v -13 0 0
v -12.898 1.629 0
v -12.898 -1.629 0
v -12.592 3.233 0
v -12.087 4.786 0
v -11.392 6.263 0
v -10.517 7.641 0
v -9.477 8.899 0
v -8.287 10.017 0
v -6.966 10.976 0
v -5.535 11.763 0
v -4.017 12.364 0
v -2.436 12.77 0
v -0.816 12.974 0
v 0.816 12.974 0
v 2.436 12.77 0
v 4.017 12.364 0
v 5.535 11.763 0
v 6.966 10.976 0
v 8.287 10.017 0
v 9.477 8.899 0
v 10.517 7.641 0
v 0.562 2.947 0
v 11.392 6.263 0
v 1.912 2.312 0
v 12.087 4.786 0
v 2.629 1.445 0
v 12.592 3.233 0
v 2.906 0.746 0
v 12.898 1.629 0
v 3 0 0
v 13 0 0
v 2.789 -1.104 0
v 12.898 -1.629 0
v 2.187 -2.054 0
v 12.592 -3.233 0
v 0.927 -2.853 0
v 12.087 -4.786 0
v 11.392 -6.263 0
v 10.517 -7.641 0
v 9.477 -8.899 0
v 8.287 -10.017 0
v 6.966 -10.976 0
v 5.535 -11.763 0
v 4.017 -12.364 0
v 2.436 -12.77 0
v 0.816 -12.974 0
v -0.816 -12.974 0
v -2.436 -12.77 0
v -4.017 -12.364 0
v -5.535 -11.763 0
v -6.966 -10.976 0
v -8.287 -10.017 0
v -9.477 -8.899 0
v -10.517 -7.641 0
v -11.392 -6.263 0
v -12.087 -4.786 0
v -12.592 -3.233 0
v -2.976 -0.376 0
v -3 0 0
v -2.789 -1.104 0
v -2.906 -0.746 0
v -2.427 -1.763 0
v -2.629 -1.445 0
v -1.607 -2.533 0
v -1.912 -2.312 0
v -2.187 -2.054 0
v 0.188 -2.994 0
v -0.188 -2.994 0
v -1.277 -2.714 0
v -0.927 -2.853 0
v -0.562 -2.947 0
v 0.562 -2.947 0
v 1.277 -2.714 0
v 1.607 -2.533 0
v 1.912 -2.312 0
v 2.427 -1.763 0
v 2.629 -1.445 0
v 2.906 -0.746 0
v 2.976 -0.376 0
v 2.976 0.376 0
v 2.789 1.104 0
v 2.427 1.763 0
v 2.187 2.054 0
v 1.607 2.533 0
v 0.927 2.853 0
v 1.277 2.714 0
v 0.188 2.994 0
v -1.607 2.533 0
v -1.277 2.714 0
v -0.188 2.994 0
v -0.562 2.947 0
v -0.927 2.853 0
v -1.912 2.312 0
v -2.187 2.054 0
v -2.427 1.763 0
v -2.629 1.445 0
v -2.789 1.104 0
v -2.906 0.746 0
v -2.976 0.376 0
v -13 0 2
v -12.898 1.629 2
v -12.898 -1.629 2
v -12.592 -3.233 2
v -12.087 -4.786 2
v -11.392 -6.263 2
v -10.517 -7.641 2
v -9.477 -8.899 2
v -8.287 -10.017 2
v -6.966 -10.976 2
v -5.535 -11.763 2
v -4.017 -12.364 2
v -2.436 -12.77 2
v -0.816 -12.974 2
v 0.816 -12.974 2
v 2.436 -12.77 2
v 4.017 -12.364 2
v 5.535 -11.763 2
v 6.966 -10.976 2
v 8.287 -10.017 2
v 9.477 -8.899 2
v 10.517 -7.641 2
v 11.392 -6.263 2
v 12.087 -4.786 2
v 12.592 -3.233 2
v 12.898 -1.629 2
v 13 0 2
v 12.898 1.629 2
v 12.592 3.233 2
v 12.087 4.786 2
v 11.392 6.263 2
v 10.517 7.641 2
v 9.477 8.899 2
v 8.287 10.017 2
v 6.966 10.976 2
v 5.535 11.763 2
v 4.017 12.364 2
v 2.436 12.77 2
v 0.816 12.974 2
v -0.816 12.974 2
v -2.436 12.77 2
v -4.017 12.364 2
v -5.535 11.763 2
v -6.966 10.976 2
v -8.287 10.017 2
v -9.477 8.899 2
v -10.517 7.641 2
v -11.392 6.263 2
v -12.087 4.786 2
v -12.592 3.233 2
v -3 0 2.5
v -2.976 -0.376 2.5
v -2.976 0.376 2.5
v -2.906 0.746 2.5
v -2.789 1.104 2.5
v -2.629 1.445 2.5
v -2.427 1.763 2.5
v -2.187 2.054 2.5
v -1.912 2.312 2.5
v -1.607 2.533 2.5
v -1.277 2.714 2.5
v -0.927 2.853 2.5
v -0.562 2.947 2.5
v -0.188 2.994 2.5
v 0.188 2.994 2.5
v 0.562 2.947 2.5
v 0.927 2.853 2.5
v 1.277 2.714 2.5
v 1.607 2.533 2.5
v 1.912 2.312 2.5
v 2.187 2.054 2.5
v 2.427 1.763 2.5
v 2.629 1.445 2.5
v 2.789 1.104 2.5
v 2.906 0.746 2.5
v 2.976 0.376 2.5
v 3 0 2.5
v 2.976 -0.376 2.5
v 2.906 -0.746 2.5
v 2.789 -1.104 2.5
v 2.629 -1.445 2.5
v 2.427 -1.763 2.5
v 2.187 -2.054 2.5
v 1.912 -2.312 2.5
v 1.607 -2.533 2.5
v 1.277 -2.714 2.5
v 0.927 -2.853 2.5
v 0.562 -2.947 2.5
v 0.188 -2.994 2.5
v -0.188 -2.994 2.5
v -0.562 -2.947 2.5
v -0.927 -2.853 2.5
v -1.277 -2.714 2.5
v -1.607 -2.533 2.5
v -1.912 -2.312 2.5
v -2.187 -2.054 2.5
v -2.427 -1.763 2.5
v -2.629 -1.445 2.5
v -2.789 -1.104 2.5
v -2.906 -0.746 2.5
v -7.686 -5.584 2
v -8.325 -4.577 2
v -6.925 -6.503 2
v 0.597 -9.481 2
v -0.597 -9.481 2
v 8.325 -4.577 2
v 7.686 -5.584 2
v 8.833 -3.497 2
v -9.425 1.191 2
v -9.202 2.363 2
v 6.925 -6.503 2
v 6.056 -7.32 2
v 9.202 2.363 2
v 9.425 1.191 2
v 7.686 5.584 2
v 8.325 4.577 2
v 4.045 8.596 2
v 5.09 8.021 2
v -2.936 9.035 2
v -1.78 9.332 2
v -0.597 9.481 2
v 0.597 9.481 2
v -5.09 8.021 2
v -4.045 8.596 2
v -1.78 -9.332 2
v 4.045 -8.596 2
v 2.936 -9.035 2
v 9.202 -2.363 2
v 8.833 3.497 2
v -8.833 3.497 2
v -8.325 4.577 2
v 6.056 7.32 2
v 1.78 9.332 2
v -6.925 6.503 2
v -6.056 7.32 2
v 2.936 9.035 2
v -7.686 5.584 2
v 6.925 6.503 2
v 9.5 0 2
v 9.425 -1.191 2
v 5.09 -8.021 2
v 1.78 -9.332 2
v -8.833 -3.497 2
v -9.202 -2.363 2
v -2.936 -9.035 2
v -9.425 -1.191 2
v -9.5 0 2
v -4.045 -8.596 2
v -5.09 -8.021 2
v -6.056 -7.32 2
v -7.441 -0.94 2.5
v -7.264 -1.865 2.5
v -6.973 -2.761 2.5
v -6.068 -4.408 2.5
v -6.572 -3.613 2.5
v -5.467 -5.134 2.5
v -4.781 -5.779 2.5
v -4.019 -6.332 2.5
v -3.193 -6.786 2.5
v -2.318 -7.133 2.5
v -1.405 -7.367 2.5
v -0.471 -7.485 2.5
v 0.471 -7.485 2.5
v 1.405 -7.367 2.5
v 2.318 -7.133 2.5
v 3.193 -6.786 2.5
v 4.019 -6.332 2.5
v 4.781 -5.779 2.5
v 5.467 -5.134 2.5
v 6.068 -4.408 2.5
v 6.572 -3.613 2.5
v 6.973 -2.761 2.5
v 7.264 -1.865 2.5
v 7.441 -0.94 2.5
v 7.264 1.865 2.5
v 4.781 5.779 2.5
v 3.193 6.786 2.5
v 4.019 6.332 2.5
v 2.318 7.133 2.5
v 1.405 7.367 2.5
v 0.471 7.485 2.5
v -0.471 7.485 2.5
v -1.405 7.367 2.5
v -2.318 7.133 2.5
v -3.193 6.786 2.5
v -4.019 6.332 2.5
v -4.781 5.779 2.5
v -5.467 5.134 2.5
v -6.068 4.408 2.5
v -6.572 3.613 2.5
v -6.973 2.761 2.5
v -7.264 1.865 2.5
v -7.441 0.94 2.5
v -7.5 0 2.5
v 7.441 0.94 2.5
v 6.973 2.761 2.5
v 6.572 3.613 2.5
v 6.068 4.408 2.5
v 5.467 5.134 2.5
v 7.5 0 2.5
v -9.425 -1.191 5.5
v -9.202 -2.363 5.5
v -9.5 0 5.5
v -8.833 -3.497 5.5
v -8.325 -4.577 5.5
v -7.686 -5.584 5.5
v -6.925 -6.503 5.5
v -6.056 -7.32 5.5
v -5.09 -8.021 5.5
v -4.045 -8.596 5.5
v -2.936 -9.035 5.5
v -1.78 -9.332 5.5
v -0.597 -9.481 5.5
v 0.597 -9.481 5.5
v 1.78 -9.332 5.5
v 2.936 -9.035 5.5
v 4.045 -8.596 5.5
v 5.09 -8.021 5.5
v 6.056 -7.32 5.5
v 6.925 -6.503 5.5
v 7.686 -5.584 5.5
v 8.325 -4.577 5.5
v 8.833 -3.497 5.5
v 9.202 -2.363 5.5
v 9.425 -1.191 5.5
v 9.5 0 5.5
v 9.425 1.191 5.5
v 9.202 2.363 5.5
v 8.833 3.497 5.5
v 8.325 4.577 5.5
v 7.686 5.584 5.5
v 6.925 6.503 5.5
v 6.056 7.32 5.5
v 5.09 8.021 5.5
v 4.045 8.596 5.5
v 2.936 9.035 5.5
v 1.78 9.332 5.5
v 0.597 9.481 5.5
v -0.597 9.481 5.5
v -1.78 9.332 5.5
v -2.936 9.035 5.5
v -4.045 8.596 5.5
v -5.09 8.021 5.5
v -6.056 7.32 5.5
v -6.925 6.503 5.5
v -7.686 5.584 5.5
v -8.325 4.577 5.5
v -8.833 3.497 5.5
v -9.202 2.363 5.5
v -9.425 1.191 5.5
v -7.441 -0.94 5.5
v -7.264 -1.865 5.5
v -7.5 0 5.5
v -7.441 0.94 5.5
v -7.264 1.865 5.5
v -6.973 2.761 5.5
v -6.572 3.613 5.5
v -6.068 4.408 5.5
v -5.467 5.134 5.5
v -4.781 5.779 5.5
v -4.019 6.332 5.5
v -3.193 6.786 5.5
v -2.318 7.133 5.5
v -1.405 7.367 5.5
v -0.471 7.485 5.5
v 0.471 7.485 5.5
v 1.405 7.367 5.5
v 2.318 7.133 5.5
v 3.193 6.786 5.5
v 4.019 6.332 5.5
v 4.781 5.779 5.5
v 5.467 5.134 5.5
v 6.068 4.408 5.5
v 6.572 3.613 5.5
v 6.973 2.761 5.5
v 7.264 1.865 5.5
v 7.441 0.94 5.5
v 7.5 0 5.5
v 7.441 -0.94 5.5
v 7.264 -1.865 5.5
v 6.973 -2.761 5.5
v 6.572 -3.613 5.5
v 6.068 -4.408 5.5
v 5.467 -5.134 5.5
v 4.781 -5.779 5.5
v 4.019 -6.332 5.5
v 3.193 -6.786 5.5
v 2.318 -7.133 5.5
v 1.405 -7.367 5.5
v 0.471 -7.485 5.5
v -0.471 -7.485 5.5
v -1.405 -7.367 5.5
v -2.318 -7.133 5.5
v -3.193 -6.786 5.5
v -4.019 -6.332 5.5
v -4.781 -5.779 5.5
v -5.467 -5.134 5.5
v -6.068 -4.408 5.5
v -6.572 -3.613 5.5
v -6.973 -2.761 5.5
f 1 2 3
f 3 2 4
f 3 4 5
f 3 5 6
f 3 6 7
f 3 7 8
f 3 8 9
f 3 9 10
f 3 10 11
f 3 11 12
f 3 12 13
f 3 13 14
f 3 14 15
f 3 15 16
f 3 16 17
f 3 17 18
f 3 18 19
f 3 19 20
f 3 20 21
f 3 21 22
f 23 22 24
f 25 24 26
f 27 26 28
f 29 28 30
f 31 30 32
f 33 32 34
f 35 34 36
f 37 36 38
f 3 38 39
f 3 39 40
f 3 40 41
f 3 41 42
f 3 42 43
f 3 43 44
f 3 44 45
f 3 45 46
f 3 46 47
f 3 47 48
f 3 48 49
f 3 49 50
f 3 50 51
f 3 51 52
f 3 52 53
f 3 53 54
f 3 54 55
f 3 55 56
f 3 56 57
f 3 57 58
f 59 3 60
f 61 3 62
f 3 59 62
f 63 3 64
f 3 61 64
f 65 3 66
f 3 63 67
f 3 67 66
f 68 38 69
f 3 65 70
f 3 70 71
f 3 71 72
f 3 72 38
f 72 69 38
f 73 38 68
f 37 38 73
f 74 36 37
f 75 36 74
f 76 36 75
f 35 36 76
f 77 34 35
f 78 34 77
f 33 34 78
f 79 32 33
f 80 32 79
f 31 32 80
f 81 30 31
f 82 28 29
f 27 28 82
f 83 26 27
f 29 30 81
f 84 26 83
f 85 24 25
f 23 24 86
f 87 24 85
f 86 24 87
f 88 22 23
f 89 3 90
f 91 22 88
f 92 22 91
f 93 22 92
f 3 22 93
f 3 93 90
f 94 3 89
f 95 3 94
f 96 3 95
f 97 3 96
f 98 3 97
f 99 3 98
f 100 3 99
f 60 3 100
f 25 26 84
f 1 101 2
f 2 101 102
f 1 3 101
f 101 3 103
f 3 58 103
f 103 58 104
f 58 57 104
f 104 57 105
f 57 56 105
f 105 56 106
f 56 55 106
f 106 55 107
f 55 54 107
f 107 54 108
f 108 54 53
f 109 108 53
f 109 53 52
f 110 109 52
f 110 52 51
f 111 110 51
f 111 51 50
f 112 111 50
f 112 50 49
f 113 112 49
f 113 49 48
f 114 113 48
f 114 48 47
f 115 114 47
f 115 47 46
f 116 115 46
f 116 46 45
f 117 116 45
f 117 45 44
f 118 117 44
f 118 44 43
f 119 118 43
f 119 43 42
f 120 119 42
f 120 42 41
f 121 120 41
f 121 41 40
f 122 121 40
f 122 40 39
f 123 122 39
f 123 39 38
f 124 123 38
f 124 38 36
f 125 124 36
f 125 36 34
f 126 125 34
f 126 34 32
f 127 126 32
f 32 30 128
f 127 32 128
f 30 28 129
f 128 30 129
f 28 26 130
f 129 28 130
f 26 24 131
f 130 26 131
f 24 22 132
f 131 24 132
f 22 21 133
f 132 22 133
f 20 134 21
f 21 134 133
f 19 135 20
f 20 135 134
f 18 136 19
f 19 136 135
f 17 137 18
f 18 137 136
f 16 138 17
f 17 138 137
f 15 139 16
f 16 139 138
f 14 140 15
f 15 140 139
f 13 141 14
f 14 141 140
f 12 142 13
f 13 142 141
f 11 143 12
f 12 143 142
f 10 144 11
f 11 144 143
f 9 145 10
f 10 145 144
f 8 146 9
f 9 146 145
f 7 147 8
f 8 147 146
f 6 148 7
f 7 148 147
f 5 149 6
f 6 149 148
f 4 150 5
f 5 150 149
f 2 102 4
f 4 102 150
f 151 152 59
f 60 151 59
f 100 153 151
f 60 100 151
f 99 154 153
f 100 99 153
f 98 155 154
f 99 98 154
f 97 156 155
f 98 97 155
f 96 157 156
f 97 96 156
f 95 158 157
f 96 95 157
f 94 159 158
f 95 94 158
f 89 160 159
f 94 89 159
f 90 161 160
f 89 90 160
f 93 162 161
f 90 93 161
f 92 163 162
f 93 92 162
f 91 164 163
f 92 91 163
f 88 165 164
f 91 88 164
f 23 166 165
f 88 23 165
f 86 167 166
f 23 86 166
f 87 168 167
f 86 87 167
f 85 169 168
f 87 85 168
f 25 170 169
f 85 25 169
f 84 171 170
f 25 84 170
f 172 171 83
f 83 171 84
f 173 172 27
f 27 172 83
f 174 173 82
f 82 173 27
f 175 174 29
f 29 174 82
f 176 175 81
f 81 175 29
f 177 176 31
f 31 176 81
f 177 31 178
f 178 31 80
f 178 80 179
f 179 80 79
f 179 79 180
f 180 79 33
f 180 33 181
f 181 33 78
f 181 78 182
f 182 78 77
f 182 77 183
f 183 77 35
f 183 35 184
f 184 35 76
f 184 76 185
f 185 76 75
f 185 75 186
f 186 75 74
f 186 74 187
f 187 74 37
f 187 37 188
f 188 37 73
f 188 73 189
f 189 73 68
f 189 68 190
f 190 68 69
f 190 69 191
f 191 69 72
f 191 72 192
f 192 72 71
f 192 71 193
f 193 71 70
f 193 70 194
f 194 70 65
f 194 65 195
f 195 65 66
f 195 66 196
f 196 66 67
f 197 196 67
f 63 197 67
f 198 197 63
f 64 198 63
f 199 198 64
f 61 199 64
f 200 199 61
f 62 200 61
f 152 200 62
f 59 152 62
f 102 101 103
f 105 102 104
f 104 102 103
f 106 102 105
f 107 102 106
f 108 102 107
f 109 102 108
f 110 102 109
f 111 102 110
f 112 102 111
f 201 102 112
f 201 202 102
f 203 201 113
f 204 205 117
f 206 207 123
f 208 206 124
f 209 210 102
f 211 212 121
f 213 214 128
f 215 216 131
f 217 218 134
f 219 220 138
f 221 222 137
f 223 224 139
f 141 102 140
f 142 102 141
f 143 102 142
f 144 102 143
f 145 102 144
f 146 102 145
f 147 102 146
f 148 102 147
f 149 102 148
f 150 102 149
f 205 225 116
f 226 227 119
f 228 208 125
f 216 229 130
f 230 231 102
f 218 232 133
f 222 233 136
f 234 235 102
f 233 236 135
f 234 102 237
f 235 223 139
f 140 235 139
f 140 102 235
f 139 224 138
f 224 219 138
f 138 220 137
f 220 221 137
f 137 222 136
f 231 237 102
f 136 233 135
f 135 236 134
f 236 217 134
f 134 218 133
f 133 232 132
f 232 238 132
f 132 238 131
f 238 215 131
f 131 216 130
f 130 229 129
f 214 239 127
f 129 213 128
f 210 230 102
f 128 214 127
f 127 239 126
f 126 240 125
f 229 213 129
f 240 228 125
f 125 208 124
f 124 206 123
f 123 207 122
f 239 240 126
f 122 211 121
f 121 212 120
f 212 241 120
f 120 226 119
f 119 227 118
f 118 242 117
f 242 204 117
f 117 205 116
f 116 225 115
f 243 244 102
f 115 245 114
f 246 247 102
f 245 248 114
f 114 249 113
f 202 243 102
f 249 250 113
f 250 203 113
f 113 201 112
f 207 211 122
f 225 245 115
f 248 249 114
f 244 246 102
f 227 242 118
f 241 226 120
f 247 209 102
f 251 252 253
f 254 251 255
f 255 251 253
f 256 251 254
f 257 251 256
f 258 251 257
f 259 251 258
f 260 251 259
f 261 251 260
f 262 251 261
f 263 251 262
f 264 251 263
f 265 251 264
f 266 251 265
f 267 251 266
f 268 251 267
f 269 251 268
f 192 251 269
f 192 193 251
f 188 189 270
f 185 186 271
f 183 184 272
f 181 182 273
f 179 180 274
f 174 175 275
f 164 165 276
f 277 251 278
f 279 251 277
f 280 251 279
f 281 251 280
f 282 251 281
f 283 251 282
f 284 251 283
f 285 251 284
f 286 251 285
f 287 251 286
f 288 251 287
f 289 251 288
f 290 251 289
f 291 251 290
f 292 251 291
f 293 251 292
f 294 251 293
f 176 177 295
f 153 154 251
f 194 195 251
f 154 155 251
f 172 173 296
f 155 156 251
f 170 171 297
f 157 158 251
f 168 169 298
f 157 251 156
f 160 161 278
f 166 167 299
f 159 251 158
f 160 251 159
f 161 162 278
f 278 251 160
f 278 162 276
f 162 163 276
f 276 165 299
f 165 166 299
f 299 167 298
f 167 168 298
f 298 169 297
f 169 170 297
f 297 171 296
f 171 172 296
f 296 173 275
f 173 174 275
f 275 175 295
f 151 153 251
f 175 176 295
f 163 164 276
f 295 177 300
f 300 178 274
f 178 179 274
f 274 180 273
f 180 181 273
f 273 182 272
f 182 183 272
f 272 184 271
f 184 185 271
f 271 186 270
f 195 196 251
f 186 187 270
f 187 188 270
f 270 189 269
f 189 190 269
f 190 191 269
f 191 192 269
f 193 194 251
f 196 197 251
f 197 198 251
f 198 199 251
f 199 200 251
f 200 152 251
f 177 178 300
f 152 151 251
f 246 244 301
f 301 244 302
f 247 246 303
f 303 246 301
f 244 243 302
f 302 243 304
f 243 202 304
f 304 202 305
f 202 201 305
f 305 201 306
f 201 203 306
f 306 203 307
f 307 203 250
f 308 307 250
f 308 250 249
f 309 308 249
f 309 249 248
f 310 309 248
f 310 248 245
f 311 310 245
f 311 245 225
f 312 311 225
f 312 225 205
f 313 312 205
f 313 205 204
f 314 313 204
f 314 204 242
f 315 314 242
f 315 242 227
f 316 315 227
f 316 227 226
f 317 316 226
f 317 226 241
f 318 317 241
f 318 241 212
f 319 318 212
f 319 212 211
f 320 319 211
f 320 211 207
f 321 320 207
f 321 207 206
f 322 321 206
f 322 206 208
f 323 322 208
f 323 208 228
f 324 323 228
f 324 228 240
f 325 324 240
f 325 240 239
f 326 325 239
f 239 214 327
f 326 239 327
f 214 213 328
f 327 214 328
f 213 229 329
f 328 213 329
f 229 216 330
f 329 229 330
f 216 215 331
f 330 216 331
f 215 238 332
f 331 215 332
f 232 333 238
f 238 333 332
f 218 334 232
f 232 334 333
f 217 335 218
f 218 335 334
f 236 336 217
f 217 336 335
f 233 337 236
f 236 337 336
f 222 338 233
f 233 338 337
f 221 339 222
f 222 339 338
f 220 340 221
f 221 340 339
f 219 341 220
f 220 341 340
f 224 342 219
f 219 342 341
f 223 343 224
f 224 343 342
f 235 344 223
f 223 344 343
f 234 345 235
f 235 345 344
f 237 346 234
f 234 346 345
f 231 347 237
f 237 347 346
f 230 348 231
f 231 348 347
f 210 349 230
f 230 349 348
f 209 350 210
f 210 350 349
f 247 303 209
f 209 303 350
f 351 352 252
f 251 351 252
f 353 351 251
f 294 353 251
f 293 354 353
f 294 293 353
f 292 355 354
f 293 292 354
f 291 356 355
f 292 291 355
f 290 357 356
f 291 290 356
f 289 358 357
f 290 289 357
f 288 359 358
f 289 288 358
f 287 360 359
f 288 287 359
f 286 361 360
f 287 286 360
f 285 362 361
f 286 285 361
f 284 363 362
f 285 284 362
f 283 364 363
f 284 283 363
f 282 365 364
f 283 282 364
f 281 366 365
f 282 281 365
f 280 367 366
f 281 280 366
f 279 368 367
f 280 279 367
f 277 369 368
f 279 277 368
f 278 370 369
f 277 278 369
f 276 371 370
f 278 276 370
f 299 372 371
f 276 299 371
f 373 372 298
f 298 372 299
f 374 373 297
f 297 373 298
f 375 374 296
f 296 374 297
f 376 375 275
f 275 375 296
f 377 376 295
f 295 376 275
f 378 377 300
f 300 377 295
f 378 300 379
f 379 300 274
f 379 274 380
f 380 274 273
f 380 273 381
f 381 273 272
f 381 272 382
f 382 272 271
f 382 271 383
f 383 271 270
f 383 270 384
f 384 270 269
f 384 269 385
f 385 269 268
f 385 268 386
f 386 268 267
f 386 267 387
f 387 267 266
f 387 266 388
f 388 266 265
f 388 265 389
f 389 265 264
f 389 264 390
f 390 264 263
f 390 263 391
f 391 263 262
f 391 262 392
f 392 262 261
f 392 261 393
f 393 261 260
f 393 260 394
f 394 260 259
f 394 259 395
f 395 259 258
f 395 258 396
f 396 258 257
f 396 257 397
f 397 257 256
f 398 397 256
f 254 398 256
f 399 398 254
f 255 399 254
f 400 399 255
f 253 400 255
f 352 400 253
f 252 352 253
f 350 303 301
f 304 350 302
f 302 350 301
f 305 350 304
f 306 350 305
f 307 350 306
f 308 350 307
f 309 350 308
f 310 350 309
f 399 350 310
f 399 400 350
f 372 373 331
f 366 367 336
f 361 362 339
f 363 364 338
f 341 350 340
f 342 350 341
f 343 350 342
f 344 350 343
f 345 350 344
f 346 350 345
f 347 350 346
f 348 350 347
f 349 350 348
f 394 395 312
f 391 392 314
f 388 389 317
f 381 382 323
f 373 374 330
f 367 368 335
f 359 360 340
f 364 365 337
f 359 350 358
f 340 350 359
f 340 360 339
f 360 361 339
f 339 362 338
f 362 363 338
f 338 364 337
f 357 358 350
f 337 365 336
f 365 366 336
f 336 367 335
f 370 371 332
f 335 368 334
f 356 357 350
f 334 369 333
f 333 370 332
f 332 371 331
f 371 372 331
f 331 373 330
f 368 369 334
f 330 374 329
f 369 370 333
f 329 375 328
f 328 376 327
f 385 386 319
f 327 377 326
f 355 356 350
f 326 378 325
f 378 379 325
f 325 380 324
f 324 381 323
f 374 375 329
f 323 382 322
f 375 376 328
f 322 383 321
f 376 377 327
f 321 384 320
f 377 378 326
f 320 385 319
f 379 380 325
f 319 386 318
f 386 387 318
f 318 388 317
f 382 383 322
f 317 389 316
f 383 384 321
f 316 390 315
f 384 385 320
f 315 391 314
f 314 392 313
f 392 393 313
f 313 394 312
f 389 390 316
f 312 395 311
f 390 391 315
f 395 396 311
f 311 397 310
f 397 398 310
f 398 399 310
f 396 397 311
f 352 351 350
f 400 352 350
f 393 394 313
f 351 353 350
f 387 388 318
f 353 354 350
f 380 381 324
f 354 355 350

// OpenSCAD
// file: stack_params.scad
stackInnerR = 26/2;
stackWallT = 3;

assemblyScrewR = 4/2;
assemblyScrewCenterR = stackInnerR+assemblyScrewR+0.5; // give ourselves clearance

stackOuterR = assemblyScrewCenterR+assemblyScrewR+stackWallT;



nutHeadWidth = 7;
nutHeadHeight = 3;

boltL = 20; // 20mm M4 bolts


flangeW = 10;
flangeH = 10;
flangeHoleR = 4.5/2;
flangeHoleHead = 7.6/2;
flangeHoleD = 3;

baseT = nutHeadHeight+2;

bodyH = boltL-baseT;

usbCableR = 3.75/2;



lensEndD = 15;
lensEndH = 3;
cameraEndD = 6;
cameraEndH = 2.5;

wallT = 2;

lensStackH = lensEndH+cameraEndH;
lensStackD = max(lensEndD, cameraEndD)+2*wallT;
// main file
include <stack_params.scad>;

$fn = 50;


flangeDepth = 2;


difference() {
  union() {
    cylinder(lensStackH, lensStackD/2, lensStackD/2, false);
    cylinder(flangeDepth, stackInnerR, stackInnerR);
  }

  union() {
    translate([0,0,-0.5])
      cylinder(cameraEndH+1, (cameraEndD)/2, (cameraEndD)/2, false);
    translate([0,0,cameraEndH])
      cylinder(lensEndH, (lensEndD)/2, (lensEndD)/2, false);
  }
}
